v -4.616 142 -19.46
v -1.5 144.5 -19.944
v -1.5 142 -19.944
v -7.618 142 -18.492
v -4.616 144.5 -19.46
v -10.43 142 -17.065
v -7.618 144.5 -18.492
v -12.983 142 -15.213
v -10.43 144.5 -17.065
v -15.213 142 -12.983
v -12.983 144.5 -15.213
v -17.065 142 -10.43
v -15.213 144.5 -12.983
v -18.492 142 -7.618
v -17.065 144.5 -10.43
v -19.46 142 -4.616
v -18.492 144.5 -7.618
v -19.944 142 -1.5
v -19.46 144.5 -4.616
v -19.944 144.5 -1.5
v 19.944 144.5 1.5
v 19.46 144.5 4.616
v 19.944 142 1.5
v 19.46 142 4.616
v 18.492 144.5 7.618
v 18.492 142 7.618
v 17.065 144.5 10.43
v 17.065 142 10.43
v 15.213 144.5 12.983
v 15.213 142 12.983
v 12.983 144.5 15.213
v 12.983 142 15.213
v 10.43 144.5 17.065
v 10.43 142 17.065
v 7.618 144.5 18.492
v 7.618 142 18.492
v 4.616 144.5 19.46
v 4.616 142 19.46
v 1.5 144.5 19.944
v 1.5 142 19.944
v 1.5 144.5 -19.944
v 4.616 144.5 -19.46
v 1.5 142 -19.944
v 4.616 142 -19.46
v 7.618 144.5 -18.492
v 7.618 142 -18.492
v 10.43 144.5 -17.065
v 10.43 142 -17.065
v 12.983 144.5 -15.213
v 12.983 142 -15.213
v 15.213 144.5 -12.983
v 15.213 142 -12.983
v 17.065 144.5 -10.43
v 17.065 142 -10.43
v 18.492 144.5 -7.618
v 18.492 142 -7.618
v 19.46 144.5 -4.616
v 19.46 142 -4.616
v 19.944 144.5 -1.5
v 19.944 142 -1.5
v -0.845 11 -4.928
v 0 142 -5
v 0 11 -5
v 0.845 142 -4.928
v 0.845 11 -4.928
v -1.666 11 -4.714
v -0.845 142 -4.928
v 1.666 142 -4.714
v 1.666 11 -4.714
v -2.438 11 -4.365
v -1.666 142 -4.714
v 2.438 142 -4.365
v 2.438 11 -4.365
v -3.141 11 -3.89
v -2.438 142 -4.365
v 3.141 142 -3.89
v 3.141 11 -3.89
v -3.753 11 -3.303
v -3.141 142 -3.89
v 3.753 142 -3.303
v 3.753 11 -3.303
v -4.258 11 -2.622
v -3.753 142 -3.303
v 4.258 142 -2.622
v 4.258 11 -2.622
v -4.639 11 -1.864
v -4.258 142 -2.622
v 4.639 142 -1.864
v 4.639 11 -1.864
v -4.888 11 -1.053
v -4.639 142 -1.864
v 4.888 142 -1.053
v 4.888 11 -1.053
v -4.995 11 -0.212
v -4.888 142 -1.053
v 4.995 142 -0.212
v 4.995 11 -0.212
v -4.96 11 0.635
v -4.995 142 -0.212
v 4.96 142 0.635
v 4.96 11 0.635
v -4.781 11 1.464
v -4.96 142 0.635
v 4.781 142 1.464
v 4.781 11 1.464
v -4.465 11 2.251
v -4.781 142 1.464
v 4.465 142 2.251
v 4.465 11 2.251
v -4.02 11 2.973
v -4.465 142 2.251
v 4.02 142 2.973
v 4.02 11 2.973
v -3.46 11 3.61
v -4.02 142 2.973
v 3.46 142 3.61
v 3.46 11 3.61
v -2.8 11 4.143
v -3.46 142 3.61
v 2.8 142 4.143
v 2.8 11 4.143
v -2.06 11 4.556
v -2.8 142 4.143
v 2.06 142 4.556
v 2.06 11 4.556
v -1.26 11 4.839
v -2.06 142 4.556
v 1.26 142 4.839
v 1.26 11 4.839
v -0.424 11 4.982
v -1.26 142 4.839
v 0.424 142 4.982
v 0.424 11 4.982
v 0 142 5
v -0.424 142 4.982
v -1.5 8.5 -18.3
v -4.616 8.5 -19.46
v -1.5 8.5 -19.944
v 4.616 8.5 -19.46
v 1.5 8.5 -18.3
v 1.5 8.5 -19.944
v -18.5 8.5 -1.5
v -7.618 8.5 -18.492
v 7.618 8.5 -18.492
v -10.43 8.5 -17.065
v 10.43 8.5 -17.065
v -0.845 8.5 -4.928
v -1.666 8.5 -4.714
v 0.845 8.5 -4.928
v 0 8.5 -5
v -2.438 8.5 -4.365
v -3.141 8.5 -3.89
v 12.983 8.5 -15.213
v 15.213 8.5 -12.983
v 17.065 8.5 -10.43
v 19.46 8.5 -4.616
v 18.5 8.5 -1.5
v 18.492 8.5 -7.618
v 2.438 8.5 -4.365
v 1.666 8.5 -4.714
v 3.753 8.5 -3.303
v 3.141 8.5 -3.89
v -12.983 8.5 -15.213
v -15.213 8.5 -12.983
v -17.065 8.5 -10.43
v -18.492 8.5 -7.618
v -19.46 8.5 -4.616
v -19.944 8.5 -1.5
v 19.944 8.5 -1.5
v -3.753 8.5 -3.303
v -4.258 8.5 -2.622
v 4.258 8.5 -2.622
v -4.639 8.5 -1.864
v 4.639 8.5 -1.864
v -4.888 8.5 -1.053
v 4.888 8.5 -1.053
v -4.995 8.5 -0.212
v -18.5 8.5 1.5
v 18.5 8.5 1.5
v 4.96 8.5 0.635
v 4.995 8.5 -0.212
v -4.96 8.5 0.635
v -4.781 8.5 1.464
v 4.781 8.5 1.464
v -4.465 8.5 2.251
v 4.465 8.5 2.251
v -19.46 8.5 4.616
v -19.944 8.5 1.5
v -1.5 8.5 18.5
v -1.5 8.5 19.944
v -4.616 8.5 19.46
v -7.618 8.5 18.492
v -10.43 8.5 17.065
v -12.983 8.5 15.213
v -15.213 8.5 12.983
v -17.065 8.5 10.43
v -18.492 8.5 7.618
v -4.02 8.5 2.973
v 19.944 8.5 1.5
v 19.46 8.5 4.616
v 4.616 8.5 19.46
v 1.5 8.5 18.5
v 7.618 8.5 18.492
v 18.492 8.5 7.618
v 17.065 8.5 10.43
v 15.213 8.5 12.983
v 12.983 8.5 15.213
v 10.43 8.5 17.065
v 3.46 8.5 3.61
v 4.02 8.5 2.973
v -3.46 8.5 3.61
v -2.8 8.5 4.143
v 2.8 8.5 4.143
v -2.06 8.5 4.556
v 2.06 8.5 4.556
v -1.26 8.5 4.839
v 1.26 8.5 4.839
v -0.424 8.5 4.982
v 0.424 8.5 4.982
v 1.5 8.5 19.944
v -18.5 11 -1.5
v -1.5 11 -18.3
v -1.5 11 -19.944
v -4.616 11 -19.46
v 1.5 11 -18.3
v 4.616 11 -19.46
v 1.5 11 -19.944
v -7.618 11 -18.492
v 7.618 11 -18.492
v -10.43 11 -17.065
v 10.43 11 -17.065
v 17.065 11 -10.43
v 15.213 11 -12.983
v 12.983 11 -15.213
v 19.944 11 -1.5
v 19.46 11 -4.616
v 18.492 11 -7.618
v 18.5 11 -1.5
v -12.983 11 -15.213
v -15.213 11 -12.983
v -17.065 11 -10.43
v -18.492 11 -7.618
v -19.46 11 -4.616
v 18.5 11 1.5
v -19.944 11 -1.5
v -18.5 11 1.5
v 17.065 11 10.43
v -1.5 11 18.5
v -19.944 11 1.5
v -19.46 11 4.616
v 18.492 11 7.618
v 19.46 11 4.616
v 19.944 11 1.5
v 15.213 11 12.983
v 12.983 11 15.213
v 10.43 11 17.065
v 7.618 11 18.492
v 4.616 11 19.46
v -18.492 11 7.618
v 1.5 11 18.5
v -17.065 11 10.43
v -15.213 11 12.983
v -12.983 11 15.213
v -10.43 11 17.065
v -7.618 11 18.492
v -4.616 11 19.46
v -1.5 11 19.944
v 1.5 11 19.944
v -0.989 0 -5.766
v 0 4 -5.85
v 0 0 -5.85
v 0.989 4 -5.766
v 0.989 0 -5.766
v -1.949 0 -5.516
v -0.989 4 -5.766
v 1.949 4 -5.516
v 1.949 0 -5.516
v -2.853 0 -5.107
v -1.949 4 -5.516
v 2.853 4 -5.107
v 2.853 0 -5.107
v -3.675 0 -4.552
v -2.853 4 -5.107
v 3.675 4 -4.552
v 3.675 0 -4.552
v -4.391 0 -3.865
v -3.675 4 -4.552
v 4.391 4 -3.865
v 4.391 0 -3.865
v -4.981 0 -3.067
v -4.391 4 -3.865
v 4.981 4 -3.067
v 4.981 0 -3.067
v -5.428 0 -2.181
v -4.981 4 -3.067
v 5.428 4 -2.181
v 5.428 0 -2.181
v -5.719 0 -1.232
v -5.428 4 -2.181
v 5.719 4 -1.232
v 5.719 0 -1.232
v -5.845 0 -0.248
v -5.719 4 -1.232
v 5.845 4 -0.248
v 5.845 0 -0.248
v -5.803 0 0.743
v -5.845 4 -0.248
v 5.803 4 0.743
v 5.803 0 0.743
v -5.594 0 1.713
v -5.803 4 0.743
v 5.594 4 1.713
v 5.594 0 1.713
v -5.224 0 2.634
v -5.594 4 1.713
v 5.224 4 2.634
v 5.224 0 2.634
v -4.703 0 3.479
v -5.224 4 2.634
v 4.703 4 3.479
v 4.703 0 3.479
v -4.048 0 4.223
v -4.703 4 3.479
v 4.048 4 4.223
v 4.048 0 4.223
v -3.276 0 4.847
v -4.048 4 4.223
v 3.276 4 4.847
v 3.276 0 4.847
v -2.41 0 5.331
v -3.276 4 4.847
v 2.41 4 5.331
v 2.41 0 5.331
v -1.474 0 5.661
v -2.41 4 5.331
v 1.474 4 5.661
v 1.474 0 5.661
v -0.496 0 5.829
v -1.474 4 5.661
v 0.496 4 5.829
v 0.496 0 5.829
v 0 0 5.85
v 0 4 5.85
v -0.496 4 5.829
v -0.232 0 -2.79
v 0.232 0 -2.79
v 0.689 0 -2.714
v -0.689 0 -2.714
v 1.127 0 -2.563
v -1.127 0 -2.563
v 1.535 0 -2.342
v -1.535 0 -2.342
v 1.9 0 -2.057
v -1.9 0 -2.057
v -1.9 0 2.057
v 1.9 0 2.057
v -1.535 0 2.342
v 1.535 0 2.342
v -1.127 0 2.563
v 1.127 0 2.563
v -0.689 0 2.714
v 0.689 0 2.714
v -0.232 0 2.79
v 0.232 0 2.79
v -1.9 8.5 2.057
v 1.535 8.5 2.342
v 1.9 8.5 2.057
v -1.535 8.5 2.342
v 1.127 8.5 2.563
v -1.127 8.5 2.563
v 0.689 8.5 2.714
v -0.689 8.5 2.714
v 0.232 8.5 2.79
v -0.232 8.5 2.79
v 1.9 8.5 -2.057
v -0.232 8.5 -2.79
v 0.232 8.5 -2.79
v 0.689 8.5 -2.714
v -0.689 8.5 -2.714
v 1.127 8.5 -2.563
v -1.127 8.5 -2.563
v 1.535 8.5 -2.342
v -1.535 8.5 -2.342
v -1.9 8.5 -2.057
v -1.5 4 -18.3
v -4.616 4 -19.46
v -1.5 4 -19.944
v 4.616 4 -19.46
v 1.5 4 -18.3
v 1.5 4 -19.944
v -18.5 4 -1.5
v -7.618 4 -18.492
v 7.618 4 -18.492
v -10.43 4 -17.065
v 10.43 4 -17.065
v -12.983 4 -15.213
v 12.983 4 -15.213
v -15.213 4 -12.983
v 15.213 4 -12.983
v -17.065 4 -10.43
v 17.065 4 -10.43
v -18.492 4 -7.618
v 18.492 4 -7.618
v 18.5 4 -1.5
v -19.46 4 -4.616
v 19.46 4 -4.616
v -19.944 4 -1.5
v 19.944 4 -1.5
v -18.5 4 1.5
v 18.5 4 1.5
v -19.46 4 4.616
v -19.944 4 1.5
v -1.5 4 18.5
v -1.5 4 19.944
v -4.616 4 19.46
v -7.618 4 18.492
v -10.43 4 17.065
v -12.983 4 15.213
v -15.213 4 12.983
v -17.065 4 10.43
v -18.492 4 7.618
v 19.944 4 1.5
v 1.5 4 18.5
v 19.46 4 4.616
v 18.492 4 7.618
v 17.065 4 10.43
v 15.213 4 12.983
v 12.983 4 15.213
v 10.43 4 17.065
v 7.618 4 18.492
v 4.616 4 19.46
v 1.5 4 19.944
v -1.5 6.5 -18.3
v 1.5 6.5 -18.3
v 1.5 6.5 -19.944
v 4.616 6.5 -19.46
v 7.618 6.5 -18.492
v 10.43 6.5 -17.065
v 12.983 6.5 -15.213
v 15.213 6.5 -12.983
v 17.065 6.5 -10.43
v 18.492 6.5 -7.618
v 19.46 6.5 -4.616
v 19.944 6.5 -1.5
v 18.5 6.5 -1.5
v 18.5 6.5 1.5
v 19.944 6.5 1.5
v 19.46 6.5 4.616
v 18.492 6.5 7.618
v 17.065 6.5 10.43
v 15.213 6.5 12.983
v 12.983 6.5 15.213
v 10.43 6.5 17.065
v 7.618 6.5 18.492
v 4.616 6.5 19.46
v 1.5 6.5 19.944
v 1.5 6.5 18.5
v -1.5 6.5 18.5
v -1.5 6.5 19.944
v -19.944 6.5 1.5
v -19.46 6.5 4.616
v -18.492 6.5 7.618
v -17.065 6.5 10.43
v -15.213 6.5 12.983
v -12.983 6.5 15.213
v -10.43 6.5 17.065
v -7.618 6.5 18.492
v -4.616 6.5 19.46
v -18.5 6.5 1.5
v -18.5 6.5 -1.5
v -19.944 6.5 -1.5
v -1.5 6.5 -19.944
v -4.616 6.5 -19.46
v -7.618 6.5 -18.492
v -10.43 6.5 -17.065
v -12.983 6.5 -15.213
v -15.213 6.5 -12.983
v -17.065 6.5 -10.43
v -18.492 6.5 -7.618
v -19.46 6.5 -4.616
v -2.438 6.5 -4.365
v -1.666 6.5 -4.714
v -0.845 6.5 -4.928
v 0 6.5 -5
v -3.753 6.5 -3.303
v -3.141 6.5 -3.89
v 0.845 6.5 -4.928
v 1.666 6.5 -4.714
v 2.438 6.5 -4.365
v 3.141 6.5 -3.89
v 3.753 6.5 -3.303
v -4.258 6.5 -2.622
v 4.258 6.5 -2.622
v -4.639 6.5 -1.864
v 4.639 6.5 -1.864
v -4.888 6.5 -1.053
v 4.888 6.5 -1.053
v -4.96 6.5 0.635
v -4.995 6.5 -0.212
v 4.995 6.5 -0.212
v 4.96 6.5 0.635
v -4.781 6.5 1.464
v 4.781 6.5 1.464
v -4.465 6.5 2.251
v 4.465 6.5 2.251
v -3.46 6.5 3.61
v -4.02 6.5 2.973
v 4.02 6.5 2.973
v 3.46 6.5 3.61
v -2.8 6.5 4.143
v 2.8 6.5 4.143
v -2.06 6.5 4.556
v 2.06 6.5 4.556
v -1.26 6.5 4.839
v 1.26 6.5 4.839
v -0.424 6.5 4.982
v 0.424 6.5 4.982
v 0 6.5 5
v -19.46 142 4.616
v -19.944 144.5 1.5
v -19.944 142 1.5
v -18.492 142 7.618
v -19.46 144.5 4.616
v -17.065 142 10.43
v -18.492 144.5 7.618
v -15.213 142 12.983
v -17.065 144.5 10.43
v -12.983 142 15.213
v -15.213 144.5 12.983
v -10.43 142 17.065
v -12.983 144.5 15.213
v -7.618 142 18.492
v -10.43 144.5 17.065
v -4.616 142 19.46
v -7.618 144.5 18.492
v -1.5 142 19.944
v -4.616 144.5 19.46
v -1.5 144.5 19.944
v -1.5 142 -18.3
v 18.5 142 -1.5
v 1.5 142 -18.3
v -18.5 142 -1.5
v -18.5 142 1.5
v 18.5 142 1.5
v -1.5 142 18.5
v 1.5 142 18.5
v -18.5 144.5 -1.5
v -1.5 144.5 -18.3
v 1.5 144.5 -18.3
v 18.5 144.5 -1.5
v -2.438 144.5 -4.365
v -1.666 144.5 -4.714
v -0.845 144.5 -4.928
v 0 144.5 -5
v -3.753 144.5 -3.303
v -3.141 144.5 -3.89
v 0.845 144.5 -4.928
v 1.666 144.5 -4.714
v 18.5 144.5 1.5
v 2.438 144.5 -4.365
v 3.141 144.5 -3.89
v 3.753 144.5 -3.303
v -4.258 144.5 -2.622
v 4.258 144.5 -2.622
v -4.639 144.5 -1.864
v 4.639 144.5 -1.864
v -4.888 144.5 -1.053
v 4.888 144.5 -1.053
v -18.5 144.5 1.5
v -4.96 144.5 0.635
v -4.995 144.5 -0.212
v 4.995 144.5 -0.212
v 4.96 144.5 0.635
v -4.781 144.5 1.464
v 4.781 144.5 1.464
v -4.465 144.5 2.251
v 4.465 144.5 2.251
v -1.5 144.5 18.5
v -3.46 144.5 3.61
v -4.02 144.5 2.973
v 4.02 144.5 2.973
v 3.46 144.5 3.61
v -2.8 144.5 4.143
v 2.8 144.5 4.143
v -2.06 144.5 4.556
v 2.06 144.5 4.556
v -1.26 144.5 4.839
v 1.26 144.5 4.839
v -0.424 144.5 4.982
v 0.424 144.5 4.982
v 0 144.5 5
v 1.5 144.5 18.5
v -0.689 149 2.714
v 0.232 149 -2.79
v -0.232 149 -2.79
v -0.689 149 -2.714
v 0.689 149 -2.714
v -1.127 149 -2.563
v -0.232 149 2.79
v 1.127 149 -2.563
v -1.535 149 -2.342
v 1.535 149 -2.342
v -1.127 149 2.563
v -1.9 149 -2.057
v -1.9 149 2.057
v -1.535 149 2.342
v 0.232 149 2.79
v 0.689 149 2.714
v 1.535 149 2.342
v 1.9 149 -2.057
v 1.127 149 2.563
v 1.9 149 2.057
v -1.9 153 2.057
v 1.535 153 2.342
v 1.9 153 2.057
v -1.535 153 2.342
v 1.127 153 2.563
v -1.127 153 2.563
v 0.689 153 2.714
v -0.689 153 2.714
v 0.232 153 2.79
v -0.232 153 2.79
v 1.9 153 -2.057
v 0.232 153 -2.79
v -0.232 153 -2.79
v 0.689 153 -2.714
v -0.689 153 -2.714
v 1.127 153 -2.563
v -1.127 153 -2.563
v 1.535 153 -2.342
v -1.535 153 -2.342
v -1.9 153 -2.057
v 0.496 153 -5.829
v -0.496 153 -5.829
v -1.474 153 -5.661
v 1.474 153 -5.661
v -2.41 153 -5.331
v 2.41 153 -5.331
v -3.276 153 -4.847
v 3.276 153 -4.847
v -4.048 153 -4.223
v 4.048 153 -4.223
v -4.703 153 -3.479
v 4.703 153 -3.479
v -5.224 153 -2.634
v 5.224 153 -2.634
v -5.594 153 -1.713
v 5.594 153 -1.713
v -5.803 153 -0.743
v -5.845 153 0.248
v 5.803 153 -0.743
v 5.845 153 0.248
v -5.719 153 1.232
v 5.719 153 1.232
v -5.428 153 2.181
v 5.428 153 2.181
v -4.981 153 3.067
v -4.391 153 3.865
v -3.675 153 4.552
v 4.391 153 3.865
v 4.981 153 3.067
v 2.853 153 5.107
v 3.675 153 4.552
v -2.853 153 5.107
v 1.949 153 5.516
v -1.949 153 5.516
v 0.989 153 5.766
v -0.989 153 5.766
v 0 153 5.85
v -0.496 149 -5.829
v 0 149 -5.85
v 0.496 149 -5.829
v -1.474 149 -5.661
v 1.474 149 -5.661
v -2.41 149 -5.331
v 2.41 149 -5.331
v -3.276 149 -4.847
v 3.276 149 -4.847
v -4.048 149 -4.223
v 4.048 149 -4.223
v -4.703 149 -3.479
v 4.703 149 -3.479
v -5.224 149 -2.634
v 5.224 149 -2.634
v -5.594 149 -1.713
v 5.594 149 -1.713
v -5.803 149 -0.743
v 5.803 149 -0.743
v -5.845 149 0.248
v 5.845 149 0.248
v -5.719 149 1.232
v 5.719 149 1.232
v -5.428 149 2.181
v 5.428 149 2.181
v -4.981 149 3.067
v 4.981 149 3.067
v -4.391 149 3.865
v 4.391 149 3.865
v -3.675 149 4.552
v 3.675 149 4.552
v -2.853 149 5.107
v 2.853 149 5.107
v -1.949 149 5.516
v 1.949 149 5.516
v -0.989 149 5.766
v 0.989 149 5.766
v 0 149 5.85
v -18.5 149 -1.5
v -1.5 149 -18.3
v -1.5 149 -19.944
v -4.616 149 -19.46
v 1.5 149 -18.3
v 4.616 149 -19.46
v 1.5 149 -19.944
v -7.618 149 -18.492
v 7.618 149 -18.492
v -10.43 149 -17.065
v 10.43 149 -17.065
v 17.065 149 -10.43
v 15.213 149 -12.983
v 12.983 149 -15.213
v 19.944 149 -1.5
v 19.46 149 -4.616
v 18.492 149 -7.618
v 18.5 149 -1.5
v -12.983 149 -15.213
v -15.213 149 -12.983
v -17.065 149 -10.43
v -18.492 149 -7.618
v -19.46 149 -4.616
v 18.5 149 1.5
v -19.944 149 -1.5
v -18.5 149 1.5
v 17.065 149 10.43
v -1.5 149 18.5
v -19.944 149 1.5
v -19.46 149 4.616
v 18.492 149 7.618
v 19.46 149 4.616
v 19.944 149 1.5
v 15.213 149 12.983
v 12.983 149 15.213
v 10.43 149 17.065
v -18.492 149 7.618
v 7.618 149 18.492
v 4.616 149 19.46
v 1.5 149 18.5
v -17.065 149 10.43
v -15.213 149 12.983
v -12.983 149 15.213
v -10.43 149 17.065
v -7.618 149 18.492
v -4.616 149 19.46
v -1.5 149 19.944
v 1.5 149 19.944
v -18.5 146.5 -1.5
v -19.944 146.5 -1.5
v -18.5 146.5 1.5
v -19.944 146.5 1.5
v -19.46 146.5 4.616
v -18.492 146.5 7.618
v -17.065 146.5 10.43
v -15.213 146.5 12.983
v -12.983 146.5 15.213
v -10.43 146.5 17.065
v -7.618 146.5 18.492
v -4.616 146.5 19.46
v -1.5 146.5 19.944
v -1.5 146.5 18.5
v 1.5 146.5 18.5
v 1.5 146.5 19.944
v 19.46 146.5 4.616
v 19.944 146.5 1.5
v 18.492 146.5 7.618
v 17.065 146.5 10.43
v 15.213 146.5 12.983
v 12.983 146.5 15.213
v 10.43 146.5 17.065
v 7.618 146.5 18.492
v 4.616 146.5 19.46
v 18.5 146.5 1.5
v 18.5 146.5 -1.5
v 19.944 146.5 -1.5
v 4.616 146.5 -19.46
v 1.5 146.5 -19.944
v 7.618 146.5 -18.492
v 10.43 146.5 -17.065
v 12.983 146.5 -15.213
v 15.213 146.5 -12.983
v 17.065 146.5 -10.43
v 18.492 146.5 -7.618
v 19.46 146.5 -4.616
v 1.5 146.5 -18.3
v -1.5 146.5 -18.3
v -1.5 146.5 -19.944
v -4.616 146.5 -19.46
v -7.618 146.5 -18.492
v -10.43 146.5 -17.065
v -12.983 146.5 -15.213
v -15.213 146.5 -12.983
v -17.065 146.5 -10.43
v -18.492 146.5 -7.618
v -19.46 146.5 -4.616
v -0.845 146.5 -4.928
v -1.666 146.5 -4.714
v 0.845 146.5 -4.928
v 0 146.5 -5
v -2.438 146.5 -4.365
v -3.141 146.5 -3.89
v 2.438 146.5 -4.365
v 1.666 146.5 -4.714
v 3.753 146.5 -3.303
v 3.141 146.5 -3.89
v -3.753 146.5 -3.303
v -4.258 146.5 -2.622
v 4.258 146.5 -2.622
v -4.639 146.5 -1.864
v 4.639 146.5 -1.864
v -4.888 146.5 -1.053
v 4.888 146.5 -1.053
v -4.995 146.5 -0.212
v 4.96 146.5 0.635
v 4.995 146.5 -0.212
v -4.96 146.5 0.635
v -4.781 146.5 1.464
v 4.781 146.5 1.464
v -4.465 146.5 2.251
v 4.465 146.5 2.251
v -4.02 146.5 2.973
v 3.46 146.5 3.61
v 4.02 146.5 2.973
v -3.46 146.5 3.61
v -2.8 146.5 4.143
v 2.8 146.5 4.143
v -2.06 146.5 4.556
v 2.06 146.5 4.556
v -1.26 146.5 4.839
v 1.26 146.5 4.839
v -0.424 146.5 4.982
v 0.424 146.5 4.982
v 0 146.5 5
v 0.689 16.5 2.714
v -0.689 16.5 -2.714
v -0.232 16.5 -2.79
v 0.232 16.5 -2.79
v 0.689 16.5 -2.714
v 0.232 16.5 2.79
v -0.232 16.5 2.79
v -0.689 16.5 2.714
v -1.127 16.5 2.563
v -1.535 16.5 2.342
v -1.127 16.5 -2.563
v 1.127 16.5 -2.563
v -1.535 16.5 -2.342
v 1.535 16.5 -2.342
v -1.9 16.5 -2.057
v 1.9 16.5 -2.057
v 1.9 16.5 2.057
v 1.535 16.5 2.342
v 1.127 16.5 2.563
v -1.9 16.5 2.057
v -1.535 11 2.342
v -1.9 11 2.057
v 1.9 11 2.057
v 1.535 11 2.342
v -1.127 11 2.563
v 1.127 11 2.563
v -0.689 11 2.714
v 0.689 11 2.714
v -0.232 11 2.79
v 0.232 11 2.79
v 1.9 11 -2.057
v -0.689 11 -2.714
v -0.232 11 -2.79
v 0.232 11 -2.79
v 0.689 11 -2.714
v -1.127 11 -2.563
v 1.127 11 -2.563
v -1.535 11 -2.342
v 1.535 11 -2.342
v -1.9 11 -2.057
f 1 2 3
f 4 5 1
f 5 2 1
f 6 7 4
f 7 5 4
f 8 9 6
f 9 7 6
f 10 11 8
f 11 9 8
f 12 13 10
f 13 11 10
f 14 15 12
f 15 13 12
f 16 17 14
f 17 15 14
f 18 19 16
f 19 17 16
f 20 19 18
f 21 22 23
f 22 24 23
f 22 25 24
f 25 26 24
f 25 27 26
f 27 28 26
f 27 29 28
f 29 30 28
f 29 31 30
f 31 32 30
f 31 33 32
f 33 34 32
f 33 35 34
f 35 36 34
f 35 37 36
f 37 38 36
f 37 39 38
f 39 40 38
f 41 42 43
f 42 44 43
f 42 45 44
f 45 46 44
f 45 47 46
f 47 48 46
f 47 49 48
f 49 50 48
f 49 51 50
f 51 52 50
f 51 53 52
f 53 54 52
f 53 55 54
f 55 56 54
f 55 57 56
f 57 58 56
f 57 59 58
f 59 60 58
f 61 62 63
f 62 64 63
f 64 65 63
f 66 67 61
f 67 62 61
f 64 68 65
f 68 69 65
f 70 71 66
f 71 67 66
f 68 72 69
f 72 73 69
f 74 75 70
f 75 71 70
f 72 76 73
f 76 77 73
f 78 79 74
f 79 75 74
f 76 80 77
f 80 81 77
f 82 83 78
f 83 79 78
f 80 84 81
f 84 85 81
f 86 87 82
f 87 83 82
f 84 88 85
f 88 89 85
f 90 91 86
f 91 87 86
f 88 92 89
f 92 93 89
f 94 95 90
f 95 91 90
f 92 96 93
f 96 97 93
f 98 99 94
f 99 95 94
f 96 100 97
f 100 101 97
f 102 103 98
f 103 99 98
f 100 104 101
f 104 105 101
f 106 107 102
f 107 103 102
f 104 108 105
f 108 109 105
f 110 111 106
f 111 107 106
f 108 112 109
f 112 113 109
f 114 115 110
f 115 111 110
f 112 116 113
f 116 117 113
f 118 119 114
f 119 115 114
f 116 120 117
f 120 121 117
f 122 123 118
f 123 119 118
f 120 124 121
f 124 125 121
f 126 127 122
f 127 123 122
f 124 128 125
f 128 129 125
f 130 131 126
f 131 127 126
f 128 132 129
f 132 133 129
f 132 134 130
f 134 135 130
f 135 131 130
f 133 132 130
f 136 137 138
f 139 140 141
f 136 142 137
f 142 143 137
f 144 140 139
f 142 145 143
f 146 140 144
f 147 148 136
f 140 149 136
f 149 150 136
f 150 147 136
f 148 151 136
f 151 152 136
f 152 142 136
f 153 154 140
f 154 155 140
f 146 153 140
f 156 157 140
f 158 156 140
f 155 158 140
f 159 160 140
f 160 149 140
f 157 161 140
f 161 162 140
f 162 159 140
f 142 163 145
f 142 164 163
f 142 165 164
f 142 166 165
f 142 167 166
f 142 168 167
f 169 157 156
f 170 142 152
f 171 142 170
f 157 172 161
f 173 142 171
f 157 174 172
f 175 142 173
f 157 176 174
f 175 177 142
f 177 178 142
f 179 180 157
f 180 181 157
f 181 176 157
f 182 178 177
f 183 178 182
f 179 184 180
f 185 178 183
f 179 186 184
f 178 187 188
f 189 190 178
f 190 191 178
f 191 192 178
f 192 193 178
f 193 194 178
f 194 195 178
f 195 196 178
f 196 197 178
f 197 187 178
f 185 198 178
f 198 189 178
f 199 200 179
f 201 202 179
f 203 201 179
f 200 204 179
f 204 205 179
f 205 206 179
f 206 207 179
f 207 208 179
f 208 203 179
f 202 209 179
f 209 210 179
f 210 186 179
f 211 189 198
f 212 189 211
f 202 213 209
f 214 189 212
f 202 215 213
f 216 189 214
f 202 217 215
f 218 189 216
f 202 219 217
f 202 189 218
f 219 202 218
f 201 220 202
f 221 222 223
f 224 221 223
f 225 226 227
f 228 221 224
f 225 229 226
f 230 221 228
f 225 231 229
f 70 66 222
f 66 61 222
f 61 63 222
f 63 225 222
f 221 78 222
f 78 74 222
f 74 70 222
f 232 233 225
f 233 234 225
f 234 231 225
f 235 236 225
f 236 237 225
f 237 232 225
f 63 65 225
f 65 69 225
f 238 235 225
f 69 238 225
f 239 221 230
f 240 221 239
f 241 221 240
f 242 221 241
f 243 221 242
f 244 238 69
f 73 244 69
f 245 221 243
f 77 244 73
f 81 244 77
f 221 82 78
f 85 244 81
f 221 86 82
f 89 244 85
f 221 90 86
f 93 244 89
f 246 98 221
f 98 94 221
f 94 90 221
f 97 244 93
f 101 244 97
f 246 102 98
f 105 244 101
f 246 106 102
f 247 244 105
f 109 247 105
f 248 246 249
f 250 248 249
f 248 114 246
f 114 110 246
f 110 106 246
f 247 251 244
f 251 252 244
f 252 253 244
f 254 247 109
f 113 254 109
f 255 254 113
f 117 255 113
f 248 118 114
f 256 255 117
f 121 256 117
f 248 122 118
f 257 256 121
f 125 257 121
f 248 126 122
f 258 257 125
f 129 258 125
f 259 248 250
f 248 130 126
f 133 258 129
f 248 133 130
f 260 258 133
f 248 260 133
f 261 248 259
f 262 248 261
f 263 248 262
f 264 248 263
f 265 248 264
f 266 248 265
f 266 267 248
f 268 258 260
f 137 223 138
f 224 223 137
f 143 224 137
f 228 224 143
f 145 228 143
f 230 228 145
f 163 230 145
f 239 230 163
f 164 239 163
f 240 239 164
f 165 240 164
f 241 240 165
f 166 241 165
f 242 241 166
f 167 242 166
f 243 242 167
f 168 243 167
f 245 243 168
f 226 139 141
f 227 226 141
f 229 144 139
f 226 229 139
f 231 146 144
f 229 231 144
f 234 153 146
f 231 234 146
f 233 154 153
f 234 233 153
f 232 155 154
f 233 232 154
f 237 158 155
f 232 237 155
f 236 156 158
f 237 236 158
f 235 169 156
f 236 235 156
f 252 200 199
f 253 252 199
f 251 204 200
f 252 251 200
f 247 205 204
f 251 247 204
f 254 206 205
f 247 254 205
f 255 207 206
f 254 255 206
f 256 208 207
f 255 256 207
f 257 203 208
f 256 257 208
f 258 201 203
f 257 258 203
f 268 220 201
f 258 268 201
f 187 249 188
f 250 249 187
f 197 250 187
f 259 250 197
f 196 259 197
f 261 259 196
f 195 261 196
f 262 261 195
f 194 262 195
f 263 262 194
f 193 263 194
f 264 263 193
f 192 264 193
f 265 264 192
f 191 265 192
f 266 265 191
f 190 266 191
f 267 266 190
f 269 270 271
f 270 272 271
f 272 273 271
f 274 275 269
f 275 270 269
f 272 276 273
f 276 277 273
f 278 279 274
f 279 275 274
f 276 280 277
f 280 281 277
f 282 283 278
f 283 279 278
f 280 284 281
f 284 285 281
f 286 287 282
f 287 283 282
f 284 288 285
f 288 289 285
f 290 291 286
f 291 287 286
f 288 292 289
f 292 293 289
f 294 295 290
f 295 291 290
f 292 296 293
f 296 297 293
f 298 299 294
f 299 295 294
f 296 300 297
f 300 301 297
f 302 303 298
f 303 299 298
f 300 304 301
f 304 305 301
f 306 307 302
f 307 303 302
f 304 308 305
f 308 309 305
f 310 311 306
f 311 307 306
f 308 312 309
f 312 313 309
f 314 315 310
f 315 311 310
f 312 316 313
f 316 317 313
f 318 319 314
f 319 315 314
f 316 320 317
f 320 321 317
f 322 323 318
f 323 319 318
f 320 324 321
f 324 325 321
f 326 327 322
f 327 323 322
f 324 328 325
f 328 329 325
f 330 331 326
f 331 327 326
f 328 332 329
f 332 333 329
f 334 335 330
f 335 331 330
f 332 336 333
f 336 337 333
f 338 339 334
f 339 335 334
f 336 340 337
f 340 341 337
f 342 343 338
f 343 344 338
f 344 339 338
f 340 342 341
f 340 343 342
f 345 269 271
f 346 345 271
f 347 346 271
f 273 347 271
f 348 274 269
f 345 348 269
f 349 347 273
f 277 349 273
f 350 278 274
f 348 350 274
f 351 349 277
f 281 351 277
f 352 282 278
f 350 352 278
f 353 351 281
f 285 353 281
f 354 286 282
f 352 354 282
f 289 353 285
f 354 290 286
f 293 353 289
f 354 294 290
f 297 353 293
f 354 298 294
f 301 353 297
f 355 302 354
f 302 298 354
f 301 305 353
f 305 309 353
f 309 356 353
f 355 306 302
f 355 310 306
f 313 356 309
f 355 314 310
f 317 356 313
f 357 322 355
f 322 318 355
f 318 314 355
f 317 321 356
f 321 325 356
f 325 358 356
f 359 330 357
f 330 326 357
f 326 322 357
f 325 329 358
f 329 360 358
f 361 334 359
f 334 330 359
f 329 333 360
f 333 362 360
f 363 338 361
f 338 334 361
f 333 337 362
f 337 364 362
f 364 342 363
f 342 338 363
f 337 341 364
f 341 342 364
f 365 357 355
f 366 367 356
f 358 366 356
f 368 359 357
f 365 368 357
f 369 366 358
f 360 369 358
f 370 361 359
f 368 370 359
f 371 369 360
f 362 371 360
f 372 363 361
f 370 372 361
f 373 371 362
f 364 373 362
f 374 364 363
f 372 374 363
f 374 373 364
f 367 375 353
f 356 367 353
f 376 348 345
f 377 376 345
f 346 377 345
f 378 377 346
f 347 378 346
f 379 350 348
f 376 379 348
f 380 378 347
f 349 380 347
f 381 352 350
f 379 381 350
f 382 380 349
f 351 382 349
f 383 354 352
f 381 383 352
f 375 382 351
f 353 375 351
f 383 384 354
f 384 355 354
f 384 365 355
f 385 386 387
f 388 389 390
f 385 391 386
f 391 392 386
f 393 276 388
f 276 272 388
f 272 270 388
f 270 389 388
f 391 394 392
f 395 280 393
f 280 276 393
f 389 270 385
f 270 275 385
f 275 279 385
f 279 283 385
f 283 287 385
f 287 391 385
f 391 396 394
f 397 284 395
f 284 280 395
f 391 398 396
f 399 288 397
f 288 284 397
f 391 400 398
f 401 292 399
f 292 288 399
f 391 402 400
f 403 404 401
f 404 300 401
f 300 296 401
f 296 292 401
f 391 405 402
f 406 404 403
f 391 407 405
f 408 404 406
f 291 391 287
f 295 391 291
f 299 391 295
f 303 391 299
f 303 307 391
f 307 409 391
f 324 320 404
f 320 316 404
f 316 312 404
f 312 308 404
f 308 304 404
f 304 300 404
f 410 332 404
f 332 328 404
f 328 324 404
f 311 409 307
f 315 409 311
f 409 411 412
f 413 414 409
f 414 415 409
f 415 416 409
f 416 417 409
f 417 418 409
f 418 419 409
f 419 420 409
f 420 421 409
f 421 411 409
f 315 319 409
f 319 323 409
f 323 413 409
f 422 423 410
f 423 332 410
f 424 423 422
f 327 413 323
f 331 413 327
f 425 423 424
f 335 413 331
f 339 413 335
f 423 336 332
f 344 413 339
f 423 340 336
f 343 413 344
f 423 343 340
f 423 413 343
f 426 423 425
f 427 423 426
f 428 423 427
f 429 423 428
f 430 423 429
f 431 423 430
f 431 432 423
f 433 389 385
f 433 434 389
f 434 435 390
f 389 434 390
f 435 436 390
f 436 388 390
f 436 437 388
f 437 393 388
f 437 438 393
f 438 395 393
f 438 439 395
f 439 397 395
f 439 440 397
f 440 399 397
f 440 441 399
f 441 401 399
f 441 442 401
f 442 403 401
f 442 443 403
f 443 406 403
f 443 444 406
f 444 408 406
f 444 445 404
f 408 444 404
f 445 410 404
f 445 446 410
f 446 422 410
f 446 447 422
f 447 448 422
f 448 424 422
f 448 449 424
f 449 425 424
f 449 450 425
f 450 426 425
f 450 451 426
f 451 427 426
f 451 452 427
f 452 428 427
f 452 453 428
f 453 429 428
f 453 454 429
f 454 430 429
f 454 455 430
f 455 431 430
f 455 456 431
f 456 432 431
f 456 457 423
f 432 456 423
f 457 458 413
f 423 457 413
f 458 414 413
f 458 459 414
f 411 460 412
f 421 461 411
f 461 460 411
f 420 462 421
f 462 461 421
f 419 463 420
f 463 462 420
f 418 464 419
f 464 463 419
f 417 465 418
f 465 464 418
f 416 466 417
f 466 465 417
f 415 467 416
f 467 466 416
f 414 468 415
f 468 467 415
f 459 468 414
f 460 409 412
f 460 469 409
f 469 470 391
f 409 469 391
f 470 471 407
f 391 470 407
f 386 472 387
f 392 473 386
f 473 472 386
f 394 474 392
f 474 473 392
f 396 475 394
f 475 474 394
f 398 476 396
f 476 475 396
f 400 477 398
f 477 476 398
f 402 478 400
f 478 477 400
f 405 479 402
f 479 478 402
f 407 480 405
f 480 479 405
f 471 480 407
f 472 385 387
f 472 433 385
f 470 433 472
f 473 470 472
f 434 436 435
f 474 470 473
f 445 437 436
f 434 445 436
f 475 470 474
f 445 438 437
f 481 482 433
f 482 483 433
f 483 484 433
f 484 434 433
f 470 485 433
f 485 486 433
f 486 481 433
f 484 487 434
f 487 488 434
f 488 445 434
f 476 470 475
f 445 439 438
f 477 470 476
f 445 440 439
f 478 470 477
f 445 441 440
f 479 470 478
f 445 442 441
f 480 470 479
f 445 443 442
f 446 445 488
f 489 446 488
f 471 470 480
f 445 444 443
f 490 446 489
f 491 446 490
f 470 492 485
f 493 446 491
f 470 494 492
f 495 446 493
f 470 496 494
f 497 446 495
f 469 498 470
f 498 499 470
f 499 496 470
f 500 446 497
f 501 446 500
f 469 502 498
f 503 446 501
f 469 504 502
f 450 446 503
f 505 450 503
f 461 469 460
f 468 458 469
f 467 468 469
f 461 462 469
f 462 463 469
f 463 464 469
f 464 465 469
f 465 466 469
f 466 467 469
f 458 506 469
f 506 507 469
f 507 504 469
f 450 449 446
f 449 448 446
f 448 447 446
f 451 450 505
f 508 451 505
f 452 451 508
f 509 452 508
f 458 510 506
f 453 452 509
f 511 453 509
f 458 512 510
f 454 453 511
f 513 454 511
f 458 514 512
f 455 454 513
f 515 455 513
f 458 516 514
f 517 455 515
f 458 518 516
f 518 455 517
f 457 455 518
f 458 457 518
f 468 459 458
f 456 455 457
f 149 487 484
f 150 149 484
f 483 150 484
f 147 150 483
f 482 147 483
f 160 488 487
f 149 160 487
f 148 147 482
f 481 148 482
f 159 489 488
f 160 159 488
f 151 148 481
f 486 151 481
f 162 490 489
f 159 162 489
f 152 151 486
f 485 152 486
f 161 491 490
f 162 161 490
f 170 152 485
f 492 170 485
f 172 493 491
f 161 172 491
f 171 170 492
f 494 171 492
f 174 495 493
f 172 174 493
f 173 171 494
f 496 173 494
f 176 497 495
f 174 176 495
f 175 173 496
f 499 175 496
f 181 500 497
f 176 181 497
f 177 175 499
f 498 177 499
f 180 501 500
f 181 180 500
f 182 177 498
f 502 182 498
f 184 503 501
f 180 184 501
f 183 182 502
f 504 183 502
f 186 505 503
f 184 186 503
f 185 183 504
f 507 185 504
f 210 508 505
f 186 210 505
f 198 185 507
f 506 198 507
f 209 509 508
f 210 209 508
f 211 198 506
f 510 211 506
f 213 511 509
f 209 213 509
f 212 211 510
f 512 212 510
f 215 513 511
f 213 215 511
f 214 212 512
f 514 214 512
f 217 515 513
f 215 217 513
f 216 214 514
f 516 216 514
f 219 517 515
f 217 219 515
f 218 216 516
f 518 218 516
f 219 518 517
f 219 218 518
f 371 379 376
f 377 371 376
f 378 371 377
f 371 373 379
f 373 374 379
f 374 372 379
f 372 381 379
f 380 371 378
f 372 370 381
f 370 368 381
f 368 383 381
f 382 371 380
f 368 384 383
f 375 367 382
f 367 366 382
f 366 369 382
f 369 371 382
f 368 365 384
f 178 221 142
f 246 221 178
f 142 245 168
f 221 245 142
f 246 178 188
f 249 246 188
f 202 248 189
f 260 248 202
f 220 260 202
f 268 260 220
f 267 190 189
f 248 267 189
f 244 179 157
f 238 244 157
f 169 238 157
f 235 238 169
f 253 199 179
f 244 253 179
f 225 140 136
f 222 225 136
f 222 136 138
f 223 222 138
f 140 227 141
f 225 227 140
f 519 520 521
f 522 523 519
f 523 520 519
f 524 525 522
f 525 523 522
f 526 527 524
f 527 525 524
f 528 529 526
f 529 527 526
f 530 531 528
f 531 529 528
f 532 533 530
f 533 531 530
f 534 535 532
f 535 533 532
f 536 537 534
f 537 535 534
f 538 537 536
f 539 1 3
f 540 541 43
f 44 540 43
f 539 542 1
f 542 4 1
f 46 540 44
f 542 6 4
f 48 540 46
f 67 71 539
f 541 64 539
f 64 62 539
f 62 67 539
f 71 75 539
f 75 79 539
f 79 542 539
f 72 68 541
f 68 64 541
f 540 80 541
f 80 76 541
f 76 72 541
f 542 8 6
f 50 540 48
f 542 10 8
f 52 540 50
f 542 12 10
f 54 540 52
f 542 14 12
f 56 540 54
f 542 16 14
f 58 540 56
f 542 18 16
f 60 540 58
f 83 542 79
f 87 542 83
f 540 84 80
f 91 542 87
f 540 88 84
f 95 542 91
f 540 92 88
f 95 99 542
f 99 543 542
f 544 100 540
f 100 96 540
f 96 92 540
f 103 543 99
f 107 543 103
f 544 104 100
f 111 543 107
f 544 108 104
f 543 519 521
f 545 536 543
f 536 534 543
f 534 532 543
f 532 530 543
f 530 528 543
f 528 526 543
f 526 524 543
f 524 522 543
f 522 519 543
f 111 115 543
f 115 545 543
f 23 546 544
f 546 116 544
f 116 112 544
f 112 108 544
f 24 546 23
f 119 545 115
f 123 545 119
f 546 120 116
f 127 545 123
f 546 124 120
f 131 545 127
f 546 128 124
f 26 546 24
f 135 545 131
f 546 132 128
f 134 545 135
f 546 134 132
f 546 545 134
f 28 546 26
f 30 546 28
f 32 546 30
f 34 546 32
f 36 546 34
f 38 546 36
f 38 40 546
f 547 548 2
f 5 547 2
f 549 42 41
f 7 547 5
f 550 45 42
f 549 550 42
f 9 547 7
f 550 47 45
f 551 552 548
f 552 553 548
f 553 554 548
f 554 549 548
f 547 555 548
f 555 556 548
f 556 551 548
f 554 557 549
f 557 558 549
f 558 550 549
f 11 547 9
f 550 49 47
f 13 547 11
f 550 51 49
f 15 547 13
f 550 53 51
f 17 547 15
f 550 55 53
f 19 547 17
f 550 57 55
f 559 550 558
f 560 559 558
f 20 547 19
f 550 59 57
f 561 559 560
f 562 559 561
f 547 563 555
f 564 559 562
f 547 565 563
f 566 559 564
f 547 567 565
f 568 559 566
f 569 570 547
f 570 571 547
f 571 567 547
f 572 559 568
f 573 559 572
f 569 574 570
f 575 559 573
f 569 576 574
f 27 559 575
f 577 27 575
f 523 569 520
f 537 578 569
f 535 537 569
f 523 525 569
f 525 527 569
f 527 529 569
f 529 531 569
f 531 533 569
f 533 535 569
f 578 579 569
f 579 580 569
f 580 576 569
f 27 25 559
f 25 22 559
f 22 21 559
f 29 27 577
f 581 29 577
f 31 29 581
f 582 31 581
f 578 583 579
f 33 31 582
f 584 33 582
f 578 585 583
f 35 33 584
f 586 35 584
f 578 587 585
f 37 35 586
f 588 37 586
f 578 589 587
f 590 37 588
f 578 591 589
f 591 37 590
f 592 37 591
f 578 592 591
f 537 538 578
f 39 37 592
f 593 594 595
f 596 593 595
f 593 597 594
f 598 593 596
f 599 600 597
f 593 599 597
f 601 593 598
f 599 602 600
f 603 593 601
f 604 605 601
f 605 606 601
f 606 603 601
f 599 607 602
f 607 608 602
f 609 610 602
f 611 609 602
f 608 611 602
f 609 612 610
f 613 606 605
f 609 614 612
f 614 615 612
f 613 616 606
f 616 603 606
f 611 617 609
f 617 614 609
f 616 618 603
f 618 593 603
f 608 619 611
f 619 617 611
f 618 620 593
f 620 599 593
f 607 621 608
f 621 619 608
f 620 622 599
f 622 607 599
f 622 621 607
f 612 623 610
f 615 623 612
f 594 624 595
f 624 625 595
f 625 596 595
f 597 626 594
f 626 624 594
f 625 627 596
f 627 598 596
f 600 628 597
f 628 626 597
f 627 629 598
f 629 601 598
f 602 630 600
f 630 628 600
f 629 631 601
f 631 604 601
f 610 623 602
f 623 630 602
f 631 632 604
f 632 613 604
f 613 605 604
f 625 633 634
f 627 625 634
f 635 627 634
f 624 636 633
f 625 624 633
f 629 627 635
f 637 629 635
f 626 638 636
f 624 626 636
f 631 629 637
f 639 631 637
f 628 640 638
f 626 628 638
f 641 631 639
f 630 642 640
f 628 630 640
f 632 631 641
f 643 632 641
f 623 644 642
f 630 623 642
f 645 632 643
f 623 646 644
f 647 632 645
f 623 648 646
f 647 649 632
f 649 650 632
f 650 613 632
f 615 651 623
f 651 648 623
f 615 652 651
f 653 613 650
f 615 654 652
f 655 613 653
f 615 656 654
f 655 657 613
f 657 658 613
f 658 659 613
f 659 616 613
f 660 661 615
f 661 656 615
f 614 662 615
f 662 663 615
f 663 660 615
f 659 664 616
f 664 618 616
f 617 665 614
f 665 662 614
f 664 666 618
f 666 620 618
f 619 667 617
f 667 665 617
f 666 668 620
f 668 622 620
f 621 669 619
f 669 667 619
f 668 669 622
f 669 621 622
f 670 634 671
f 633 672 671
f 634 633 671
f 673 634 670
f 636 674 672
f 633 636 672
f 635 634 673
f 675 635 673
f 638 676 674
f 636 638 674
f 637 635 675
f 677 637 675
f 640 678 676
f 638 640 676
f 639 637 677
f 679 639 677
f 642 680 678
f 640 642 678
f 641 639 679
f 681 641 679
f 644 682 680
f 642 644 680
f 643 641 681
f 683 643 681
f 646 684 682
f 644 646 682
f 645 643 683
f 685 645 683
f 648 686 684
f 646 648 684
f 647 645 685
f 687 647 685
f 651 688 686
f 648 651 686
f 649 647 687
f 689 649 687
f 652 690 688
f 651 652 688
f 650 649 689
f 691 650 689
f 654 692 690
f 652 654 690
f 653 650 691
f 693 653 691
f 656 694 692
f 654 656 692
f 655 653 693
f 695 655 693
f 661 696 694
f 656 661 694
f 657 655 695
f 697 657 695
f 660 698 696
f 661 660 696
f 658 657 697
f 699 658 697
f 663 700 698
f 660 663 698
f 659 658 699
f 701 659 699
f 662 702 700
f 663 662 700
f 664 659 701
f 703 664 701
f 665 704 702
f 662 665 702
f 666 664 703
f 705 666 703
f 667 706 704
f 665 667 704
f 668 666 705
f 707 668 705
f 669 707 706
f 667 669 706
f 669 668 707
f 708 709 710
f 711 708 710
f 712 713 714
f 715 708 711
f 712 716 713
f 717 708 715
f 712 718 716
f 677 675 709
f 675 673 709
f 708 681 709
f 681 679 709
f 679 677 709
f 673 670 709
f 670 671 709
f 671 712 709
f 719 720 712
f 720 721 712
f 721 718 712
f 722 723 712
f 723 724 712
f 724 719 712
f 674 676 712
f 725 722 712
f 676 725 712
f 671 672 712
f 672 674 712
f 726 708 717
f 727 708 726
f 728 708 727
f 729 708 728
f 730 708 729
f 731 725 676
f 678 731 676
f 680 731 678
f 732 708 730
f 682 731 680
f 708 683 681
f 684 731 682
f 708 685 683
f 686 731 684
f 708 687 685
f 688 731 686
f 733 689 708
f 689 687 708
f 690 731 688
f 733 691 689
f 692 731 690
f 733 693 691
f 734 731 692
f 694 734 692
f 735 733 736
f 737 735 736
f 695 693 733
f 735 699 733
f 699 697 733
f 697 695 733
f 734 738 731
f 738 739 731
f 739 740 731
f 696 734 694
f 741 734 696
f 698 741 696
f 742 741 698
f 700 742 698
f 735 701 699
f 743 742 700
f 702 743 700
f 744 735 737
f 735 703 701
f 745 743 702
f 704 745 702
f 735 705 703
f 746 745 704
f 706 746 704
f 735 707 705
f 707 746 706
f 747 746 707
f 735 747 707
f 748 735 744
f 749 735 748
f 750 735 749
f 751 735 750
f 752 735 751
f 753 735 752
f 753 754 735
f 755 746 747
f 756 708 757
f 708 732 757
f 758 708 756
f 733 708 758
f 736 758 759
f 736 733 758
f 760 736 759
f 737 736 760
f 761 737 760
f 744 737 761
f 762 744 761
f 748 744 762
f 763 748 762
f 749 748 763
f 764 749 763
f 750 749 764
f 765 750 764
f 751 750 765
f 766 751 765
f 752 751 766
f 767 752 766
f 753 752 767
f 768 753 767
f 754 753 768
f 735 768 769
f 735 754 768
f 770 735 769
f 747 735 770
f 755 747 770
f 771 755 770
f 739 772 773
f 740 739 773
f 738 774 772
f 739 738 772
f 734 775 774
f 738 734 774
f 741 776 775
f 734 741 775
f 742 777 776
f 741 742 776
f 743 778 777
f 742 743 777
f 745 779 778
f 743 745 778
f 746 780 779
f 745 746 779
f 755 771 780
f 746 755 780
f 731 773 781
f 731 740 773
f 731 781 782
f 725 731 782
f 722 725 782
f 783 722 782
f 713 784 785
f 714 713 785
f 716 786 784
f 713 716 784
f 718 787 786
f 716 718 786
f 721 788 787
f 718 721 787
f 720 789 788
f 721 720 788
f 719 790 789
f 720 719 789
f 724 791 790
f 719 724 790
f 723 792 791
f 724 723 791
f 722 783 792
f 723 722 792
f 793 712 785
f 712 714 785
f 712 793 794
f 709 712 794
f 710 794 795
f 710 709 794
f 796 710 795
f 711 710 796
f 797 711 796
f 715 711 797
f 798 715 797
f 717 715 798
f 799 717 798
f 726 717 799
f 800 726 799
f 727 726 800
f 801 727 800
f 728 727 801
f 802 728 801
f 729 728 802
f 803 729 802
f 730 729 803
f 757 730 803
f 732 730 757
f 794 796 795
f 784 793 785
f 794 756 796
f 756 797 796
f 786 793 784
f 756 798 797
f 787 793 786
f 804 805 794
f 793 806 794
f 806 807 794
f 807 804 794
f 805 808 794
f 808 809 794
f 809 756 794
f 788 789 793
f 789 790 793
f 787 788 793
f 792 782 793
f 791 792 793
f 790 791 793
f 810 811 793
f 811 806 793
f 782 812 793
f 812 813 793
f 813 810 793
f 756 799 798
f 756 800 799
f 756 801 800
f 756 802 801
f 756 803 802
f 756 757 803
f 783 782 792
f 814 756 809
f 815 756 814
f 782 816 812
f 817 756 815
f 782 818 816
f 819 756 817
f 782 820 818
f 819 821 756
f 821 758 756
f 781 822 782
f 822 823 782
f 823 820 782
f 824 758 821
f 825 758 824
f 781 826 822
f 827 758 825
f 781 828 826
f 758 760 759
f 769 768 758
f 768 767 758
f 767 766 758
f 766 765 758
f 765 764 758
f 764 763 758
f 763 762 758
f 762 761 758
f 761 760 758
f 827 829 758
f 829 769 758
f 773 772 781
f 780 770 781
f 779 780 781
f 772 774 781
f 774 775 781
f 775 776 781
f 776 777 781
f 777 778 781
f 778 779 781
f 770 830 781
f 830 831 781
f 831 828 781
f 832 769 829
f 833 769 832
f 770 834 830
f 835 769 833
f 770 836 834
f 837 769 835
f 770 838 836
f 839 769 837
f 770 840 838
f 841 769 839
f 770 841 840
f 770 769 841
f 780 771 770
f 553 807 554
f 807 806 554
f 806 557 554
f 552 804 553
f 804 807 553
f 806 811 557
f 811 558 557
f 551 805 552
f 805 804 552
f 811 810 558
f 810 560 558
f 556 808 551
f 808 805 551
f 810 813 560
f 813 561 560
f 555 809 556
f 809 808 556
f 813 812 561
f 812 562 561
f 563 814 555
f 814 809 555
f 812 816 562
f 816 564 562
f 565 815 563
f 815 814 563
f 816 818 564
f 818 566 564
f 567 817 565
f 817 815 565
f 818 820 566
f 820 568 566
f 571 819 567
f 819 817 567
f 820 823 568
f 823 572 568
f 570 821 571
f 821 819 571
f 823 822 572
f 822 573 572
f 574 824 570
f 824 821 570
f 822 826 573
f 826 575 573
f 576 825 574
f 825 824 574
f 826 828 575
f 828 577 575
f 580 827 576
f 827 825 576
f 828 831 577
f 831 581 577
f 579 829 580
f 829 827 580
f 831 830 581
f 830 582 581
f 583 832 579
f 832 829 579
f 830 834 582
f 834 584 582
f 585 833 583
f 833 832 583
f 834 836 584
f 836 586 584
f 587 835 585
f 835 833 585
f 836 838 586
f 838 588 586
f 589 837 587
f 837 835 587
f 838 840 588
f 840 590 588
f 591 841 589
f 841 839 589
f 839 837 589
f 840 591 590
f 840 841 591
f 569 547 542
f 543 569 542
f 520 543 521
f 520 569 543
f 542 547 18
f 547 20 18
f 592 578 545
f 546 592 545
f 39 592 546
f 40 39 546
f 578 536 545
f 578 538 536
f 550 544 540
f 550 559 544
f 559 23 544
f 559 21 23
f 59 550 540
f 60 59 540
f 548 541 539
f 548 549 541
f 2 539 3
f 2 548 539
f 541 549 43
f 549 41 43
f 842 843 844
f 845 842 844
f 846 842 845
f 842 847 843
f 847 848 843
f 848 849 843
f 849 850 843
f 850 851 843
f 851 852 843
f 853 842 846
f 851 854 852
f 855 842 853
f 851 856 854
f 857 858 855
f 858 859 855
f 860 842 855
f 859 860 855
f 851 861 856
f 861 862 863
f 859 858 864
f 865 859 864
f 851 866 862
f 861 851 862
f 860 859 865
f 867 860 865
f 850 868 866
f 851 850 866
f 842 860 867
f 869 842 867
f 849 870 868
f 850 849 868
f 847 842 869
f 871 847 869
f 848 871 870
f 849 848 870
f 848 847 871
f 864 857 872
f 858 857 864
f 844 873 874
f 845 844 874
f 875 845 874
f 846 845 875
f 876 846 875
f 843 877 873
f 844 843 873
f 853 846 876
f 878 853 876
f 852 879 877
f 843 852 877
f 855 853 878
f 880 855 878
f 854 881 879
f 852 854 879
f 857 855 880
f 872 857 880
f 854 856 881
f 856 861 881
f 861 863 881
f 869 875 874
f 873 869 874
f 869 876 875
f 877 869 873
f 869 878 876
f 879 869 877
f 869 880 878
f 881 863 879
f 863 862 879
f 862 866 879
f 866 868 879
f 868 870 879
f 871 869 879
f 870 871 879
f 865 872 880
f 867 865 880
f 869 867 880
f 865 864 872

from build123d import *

# Parameters (mm, degrees)
BOSS_EXTRUDE1_DEPTH     = 6.5
SKETCH2_R               = 20
BOSS_EXTRUDE2_DEPTH     = 2.5
CUT_EXTRUDE1_DEPTH      = 8
SKETCH4_W               = 3
SKETCH4_H               = 3
CUT_EXTRUDE2_DEPTH      = 10
SKETCH5_R               = 5
BOSS_EXTRUDE3_DEPTH     = 140
CUT_EXTRUDE3_DEPTH      = 10
MIRROR5_COPY_1_SKETCH_R = 20
MIRROR5_COPY_1_DEPTH    = 2.5
MIRROR5_COPY_2_SKETCH_W = 3
MIRROR5_COPY_2_SKETCH_H = 3
MIRROR5_COPY_2_DEPTH    = 10


with BuildPart() as part:
    # Sketch1 → Boss-Extrude1 (new body)
    with BuildSketch(Plane(origin=(0, 0, 0), x_dir=(1, 0, 0), z_dir=(0, 1, 0))):
        with BuildLine():
            ThreePointArc((-1.9, -2.05669638), (-2.8, 0), (-1.9, 2.05669638))
            Line((-1.9, 2.05669638), (-1.9, 5.532856405))
            ThreePointArc((-1.9, 5.532856405), (-5.85, 0), (-1.9, -5.532856405))
            Line((-1.9, -5.532856405), (-1.9, -2.05669638))
        make_face()
        with BuildLine():
            ThreePointArc((-1.9, 2.05669638), (0, 2.8), (1.9, 2.05669638))
            Line((1.9, 2.05669638), (1.9, 5.532856405))
            ThreePointArc((1.9, 5.532856405), (0, 5.85), (-1.9, 5.532856405))
            Line((-1.9, 5.532856405), (-1.9, 2.05669638))
        make_face()
        with BuildLine():
            Line((1.9, 5.532856405), (1.9, 2.05669638))
            ThreePointArc((1.9, 2.05669638), (2.565151068, 1.122497216), (2.8, 0))
            ThreePointArc((2.8, 0), (2.565151068, -1.122497216), (1.9, -2.05669638))
            Line((1.9, -2.05669638), (1.9, -5.532856405))
            ThreePointArc((1.9, -5.532856405), (4.761171074, -3.399080758), (5.85, 0))
            ThreePointArc((5.85, 0), (4.761171074, 3.399080758), (1.9, 5.532856405))
        make_face()
        with BuildLine():
            Line((1.9, -5.532856405), (1.9, -2.05669638))
            ThreePointArc((1.9, -2.05669638), (0, -2.8), (-1.9, -2.05669638))
            Line((-1.9, -2.05669638), (-1.9, -5.532856405))
            ThreePointArc((-1.9, -5.532856405), (0, -5.85), (1.9, -5.532856405))
        make_face()
        with BuildLine():
            Line((-1.9, -2.05669638), (-1.9, 2.05669638))
            ThreePointArc((-1.9, 2.05669638), (-2.8, 0), (-1.9, -2.05669638))
        make_face()
        with BuildLine():
            ThreePointArc((2.8, 0), (2.565151068, 1.122497216), (1.9, 2.05669638))
            Line((1.9, 2.05669638), (1.9, -2.05669638))
            ThreePointArc((1.9, -2.05669638), (2.565151068, -1.122497216), (2.8, 0))
        make_face()
    boss_extrude1 = extrude(amount=BOSS_EXTRUDE1_DEPTH)

    # Sketch2 → Boss-Extrude2 (add)
    with BuildSketch(Plane(origin=(0, 6.5, 0), x_dir=(1, 0, 0), z_dir=(0, 1, 0))):
        with Locations(Location((0, 0, 0), (0, 0, 270))):
            Circle(SKETCH2_R)
    boss_extrude2 = extrude(amount=-BOSS_EXTRUDE2_DEPTH)

    # Sketch3 → Cut-Extrude1 (cut)
    with BuildSketch(Plane.XZ.offset(-4)):
        with BuildLine():
            Line((-1.9, 2.05669638), (-1.9, -2.05669638))
            ThreePointArc((-1.9, -2.05669638), (0, -2.8), (1.9, -2.05669638))
            Line((1.9, -2.05669638), (1.9, 2.05669638))
            ThreePointArc((1.9, 2.05669638), (0, 2.8), (-1.9, 2.05669638))
        make_face()
    extrude(amount=-CUT_EXTRUDE1_DEPTH, mode=Mode.SUBTRACT)

    # Sketch4 → Cut-Extrude2 (cut)
    with BuildSketch(Plane(origin=(0, 6.5, 0), x_dir=(1, 0, 0), z_dir=(0, 1, 0))):
        with Locations((0, 19.8)):
            Rectangle(SKETCH4_W, SKETCH4_H)
        with Locations((20, 0)):
            Rectangle(SKETCH4_W, SKETCH4_H)
        with Locations((0, -20)):
            Rectangle(SKETCH4_W, SKETCH4_H)
        with Locations((-20, 0)):
            Rectangle(SKETCH4_W, SKETCH4_H)
    cut_extrude2 = extrude(amount=-CUT_EXTRUDE2_DEPTH, mode=Mode.SUBTRACT)

    # Sketch5 → Boss-Extrude3 (add)
    with BuildSketch(Plane(origin=(0, 6.5, 0), x_dir=(1, 0, 0), z_dir=(0, 1, 0))):
        with Locations(Location((0, 0, 0), (0, 0, 270))):
            Circle(SKETCH5_R)
    extrude(amount=BOSS_EXTRUDE3_DEPTH)

    # Mirror1: Boss-Extrude2, Cut-Extrude2 across plane
    add(boss_extrude2.mirror(Plane.ZX.offset(76.5)))
    add(cut_extrude2.mirror(Plane.ZX.offset(76.5)), mode=Mode.SUBTRACT)

    # Mirror2: Boss-Extrude1 across plane
    add(boss_extrude1.mirror(Plane.ZX.offset(76.5)))

    # Sketch6 → Cut-Extrude3 (cut)
    with BuildSketch(Plane.XZ.offset(-6.5)):
        with BuildLine():
            Line((-1.9, 2.05669638), (-1.9, -2.05669638))
            ThreePointArc((-1.9, -2.05669638), (0, -2.8), (1.9, -2.05669638))
            Line((1.9, -2.05669638), (1.9, 2.05669638))
            ThreePointArc((1.9, 2.05669638), (0, 2.8), (-1.9, 2.05669638))
        make_face()
    extrude(amount=-CUT_EXTRUDE3_DEPTH, mode=Mode.SUBTRACT)

    # Mirror3: Boss-Extrude2, Cut-Extrude2 across plane
    add(boss_extrude2.mirror(Plane.ZX.offset(7.5)))
    add(cut_extrude2.mirror(Plane.ZX.offset(7.5)), mode=Mode.SUBTRACT)

    # Mirror5 copy 1 sketch → Mirror5 copy 1 (add)
    with BuildSketch(Plane(origin=(0, 144.5, 0), x_dir=(1, 0, 0), z_dir=(0, 1, 0))):
        with Locations(Location((0, 0, 0), (0, 0, 270))):
            Circle(MIRROR5_COPY_1_SKETCH_R)
    extrude(amount=-MIRROR5_COPY_1_DEPTH)

    # Mirror5 copy 2 sketch → Mirror5 copy 2 (cut)
    with BuildSketch(Plane(origin=(0, 144.5, 0), x_dir=(1, 0, 0), z_dir=(0, 1, 0))):
        with Locations((0, 19.8)):
            Rectangle(MIRROR5_COPY_2_SKETCH_W, MIRROR5_COPY_2_SKETCH_H)
        with Locations((20, 0)):
            Rectangle(MIRROR5_COPY_2_SKETCH_W, MIRROR5_COPY_2_SKETCH_H)
        with Locations((0, -20)):
            Rectangle(MIRROR5_COPY_2_SKETCH_W, MIRROR5_COPY_2_SKETCH_H)
        with Locations((-20, 0)):
            Rectangle(MIRROR5_COPY_2_SKETCH_W, MIRROR5_COPY_2_SKETCH_H)
    extrude(amount=-MIRROR5_COPY_2_DEPTH, mode=Mode.SUBTRACT)


solid = part.part
